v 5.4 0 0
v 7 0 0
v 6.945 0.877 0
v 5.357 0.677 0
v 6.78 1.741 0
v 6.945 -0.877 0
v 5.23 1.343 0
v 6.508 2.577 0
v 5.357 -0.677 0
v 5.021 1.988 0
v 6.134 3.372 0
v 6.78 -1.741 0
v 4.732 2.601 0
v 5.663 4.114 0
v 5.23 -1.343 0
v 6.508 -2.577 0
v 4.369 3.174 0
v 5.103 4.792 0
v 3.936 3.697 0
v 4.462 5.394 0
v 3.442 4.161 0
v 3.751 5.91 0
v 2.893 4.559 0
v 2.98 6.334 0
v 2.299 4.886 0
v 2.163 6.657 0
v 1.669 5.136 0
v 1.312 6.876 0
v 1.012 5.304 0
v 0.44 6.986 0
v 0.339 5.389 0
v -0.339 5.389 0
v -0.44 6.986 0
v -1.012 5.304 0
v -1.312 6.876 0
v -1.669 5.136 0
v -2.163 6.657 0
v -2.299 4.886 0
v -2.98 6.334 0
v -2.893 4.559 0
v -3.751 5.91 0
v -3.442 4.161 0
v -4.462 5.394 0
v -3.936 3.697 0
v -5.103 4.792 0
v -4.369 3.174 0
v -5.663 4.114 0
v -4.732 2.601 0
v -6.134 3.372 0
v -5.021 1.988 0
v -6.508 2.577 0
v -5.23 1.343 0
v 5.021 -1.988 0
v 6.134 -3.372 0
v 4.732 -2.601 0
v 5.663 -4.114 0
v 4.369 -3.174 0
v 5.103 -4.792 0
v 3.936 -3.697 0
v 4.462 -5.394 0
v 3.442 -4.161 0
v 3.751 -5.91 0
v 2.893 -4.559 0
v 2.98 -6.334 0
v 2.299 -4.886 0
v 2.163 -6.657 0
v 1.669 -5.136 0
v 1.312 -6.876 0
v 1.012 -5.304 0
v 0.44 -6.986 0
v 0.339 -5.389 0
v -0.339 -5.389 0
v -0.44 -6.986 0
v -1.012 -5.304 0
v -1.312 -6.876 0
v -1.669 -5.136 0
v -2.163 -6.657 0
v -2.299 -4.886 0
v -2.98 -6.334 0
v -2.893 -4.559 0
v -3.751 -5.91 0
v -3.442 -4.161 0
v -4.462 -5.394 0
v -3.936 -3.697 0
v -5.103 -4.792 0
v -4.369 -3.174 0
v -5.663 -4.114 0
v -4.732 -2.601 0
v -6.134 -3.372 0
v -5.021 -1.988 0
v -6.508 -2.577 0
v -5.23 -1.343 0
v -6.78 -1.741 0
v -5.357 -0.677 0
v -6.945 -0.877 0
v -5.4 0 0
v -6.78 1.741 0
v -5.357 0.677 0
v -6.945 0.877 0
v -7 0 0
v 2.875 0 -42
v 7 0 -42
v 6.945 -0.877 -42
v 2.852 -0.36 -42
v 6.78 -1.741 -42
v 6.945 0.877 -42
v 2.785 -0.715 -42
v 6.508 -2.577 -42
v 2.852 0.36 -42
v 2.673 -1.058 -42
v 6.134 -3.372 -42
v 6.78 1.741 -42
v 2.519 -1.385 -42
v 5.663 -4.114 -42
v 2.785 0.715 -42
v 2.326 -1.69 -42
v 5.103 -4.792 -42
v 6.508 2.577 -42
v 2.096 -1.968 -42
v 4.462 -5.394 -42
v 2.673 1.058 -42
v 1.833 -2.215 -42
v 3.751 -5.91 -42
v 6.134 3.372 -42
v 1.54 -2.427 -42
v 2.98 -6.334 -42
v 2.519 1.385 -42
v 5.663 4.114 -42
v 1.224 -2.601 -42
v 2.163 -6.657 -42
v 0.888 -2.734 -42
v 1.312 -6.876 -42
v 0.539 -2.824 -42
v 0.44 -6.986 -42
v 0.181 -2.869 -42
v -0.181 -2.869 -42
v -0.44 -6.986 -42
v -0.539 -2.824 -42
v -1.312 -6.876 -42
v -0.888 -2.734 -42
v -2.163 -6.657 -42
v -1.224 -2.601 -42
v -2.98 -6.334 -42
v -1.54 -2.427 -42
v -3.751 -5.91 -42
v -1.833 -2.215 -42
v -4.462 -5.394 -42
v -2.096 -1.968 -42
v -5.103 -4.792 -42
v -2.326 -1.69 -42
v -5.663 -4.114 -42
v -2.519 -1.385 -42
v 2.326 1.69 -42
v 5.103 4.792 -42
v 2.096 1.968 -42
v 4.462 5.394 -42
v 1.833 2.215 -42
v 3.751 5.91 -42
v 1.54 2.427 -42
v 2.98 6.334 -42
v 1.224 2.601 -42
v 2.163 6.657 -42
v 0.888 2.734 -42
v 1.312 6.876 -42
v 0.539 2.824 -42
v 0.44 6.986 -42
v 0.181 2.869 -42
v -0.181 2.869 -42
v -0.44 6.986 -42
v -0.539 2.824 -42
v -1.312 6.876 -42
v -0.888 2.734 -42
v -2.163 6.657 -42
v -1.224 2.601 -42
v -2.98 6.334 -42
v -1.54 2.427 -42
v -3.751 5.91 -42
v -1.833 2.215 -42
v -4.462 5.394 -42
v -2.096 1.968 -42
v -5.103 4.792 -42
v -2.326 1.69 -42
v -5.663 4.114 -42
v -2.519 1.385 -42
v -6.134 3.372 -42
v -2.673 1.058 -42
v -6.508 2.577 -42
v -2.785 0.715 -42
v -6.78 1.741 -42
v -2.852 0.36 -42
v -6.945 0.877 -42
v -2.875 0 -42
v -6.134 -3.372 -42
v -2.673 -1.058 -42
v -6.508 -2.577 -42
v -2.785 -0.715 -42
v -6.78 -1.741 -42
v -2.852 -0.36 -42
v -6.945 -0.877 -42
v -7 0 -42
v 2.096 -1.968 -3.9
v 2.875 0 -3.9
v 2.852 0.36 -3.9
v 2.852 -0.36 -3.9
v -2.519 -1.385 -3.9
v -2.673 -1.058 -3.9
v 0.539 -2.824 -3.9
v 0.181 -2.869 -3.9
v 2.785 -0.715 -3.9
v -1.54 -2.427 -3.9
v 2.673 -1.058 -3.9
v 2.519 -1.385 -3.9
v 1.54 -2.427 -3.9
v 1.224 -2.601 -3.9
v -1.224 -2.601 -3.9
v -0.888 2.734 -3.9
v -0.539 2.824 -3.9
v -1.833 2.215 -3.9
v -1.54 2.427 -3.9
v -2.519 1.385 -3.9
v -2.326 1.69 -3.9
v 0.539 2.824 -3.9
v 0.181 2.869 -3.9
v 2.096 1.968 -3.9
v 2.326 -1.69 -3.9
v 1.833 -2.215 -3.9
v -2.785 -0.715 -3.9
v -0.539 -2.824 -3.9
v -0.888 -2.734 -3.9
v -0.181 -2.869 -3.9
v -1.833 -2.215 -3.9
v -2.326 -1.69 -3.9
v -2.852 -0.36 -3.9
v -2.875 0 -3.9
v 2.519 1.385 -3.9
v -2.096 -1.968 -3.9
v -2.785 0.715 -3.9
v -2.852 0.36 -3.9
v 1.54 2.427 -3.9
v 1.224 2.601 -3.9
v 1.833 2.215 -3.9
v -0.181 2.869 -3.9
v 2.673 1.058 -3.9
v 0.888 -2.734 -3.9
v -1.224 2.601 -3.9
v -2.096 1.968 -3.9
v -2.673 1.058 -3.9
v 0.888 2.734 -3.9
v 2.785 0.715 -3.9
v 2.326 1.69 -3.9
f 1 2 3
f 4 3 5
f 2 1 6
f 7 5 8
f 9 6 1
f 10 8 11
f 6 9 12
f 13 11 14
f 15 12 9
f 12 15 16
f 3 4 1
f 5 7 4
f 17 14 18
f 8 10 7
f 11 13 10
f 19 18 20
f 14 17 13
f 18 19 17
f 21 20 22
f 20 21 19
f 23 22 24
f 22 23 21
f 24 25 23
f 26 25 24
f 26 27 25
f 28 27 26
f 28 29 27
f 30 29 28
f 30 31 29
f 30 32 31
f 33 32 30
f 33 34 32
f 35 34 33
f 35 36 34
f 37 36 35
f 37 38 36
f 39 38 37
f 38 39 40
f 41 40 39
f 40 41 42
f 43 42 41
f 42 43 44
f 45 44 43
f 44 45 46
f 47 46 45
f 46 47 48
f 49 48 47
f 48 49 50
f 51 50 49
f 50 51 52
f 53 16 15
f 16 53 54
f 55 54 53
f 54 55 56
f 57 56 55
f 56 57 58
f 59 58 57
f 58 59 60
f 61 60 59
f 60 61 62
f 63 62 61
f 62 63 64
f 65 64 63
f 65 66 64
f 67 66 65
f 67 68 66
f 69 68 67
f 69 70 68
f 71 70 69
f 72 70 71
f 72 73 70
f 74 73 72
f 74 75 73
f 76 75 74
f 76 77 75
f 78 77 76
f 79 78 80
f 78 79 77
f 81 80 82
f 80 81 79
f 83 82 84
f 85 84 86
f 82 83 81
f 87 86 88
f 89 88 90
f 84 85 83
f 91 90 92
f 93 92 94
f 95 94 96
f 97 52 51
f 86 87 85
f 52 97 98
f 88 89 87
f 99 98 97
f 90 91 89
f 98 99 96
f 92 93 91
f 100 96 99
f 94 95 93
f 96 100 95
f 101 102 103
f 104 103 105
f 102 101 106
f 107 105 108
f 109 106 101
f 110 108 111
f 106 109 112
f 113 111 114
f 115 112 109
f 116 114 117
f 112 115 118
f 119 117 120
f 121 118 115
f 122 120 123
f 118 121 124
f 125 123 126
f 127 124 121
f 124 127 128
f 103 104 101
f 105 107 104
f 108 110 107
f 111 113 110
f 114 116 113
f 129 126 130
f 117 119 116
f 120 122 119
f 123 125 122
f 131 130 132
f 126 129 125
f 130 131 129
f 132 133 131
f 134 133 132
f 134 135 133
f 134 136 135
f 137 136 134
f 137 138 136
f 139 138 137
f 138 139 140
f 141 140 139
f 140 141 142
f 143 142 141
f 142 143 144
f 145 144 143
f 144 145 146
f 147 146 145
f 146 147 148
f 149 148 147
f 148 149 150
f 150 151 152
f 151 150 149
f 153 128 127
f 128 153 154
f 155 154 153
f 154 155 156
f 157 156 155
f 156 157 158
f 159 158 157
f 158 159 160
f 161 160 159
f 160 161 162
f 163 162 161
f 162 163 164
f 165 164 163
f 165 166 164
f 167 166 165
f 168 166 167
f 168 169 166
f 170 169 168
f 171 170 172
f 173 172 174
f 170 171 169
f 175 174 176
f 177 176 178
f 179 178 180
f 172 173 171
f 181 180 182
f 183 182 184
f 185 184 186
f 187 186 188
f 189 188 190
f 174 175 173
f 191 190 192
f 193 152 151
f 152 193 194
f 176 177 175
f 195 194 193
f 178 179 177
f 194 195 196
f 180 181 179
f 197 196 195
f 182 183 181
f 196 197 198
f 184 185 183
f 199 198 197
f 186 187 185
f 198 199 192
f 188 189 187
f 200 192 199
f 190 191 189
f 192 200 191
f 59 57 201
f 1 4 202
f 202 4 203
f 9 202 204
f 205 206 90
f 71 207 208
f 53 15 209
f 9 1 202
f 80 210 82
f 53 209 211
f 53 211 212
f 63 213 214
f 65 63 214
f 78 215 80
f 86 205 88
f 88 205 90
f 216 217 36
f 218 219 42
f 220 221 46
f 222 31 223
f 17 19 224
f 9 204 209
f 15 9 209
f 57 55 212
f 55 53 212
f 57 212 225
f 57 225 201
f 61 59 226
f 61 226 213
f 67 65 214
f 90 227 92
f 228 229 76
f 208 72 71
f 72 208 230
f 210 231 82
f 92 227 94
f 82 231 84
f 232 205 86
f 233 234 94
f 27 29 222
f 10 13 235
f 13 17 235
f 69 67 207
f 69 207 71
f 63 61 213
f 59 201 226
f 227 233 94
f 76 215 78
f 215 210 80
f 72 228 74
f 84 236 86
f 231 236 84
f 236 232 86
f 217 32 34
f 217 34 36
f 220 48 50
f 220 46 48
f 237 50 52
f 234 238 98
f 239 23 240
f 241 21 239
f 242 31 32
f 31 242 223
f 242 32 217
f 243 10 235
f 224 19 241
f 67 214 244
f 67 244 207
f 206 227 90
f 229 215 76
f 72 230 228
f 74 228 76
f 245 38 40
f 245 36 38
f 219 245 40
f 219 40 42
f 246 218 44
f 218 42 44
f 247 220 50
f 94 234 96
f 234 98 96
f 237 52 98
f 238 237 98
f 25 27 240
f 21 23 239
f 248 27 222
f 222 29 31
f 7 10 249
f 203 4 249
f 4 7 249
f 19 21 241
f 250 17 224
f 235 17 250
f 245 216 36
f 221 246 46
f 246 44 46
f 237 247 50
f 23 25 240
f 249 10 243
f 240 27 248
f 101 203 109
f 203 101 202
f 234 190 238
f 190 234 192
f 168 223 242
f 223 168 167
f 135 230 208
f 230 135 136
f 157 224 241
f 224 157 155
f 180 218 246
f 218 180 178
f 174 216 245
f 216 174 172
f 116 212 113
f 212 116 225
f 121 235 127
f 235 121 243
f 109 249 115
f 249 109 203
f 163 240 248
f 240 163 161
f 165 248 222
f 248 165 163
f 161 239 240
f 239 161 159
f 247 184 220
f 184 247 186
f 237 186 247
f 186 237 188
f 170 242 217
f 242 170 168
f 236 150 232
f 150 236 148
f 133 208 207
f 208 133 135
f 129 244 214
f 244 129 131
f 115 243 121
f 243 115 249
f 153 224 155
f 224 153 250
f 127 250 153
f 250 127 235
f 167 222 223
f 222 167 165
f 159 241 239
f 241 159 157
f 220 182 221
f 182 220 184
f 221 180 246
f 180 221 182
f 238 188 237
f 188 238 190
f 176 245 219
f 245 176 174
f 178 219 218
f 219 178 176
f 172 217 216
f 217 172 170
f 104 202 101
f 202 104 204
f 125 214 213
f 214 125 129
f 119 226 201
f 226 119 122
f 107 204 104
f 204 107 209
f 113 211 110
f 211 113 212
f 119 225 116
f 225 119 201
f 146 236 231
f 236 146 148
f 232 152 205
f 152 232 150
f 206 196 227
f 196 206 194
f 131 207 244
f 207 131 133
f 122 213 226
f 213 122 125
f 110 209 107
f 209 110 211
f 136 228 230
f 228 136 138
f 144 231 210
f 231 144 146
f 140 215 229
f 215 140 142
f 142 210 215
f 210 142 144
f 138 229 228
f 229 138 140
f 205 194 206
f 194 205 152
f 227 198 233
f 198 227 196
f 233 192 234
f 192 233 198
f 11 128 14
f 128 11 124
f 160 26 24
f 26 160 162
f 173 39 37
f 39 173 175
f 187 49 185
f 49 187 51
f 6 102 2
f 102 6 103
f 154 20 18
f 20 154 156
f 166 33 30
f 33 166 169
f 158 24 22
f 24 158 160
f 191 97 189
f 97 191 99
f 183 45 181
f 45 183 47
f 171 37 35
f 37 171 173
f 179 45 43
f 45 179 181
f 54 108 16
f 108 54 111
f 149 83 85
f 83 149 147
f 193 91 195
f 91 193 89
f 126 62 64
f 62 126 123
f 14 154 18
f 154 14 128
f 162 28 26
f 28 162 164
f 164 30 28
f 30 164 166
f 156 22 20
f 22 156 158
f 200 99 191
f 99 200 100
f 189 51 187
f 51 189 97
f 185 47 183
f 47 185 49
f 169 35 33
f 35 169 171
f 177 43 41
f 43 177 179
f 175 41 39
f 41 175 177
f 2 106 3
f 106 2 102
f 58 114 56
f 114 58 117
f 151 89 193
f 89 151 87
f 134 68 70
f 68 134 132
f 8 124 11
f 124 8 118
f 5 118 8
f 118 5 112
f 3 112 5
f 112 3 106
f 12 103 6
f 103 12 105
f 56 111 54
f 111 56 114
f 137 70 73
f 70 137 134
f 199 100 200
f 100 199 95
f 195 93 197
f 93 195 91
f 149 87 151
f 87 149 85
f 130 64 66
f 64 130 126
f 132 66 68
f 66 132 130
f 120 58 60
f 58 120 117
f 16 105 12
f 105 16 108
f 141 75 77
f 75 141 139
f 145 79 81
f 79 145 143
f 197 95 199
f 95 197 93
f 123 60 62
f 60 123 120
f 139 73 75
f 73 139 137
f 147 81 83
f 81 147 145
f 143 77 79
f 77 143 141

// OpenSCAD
$fn = 50;


difference() {
	union() {
		translate(v = [0, 0, -42.0000000000]) {
			cylinder(h = 42, r = 7.0000000000);
		}
		cylinder(h = 0, r = 13.0000000000);
	}
	union() {
		translate(v = [0, 0, 0]) {
			rotate(a = [0, 0, 0]) {
				difference() {
					union() {
						#translate(v = [0, 0, -42.0000000000]) {
							cylinder(h = 42, r = 2.6000000000);
						}
						#translate(v = [0, 0, -3.9000000000]) {
							cylinder(h = 3.9000000000, r = 7.0000000000, r1 = 2.8750000000, r2 = 5.4000000000);
						}
						#translate(v = [0, 0, -42.0000000000]) {
							cylinder(h = 42, r = 2.8750000000);
						}
						#translate(v = [0, 0, -42.0000000000]) {
							cylinder(h = 42, r = 2.6000000000);
						}
					}
					union();
				}
			}
		}
	}
}
